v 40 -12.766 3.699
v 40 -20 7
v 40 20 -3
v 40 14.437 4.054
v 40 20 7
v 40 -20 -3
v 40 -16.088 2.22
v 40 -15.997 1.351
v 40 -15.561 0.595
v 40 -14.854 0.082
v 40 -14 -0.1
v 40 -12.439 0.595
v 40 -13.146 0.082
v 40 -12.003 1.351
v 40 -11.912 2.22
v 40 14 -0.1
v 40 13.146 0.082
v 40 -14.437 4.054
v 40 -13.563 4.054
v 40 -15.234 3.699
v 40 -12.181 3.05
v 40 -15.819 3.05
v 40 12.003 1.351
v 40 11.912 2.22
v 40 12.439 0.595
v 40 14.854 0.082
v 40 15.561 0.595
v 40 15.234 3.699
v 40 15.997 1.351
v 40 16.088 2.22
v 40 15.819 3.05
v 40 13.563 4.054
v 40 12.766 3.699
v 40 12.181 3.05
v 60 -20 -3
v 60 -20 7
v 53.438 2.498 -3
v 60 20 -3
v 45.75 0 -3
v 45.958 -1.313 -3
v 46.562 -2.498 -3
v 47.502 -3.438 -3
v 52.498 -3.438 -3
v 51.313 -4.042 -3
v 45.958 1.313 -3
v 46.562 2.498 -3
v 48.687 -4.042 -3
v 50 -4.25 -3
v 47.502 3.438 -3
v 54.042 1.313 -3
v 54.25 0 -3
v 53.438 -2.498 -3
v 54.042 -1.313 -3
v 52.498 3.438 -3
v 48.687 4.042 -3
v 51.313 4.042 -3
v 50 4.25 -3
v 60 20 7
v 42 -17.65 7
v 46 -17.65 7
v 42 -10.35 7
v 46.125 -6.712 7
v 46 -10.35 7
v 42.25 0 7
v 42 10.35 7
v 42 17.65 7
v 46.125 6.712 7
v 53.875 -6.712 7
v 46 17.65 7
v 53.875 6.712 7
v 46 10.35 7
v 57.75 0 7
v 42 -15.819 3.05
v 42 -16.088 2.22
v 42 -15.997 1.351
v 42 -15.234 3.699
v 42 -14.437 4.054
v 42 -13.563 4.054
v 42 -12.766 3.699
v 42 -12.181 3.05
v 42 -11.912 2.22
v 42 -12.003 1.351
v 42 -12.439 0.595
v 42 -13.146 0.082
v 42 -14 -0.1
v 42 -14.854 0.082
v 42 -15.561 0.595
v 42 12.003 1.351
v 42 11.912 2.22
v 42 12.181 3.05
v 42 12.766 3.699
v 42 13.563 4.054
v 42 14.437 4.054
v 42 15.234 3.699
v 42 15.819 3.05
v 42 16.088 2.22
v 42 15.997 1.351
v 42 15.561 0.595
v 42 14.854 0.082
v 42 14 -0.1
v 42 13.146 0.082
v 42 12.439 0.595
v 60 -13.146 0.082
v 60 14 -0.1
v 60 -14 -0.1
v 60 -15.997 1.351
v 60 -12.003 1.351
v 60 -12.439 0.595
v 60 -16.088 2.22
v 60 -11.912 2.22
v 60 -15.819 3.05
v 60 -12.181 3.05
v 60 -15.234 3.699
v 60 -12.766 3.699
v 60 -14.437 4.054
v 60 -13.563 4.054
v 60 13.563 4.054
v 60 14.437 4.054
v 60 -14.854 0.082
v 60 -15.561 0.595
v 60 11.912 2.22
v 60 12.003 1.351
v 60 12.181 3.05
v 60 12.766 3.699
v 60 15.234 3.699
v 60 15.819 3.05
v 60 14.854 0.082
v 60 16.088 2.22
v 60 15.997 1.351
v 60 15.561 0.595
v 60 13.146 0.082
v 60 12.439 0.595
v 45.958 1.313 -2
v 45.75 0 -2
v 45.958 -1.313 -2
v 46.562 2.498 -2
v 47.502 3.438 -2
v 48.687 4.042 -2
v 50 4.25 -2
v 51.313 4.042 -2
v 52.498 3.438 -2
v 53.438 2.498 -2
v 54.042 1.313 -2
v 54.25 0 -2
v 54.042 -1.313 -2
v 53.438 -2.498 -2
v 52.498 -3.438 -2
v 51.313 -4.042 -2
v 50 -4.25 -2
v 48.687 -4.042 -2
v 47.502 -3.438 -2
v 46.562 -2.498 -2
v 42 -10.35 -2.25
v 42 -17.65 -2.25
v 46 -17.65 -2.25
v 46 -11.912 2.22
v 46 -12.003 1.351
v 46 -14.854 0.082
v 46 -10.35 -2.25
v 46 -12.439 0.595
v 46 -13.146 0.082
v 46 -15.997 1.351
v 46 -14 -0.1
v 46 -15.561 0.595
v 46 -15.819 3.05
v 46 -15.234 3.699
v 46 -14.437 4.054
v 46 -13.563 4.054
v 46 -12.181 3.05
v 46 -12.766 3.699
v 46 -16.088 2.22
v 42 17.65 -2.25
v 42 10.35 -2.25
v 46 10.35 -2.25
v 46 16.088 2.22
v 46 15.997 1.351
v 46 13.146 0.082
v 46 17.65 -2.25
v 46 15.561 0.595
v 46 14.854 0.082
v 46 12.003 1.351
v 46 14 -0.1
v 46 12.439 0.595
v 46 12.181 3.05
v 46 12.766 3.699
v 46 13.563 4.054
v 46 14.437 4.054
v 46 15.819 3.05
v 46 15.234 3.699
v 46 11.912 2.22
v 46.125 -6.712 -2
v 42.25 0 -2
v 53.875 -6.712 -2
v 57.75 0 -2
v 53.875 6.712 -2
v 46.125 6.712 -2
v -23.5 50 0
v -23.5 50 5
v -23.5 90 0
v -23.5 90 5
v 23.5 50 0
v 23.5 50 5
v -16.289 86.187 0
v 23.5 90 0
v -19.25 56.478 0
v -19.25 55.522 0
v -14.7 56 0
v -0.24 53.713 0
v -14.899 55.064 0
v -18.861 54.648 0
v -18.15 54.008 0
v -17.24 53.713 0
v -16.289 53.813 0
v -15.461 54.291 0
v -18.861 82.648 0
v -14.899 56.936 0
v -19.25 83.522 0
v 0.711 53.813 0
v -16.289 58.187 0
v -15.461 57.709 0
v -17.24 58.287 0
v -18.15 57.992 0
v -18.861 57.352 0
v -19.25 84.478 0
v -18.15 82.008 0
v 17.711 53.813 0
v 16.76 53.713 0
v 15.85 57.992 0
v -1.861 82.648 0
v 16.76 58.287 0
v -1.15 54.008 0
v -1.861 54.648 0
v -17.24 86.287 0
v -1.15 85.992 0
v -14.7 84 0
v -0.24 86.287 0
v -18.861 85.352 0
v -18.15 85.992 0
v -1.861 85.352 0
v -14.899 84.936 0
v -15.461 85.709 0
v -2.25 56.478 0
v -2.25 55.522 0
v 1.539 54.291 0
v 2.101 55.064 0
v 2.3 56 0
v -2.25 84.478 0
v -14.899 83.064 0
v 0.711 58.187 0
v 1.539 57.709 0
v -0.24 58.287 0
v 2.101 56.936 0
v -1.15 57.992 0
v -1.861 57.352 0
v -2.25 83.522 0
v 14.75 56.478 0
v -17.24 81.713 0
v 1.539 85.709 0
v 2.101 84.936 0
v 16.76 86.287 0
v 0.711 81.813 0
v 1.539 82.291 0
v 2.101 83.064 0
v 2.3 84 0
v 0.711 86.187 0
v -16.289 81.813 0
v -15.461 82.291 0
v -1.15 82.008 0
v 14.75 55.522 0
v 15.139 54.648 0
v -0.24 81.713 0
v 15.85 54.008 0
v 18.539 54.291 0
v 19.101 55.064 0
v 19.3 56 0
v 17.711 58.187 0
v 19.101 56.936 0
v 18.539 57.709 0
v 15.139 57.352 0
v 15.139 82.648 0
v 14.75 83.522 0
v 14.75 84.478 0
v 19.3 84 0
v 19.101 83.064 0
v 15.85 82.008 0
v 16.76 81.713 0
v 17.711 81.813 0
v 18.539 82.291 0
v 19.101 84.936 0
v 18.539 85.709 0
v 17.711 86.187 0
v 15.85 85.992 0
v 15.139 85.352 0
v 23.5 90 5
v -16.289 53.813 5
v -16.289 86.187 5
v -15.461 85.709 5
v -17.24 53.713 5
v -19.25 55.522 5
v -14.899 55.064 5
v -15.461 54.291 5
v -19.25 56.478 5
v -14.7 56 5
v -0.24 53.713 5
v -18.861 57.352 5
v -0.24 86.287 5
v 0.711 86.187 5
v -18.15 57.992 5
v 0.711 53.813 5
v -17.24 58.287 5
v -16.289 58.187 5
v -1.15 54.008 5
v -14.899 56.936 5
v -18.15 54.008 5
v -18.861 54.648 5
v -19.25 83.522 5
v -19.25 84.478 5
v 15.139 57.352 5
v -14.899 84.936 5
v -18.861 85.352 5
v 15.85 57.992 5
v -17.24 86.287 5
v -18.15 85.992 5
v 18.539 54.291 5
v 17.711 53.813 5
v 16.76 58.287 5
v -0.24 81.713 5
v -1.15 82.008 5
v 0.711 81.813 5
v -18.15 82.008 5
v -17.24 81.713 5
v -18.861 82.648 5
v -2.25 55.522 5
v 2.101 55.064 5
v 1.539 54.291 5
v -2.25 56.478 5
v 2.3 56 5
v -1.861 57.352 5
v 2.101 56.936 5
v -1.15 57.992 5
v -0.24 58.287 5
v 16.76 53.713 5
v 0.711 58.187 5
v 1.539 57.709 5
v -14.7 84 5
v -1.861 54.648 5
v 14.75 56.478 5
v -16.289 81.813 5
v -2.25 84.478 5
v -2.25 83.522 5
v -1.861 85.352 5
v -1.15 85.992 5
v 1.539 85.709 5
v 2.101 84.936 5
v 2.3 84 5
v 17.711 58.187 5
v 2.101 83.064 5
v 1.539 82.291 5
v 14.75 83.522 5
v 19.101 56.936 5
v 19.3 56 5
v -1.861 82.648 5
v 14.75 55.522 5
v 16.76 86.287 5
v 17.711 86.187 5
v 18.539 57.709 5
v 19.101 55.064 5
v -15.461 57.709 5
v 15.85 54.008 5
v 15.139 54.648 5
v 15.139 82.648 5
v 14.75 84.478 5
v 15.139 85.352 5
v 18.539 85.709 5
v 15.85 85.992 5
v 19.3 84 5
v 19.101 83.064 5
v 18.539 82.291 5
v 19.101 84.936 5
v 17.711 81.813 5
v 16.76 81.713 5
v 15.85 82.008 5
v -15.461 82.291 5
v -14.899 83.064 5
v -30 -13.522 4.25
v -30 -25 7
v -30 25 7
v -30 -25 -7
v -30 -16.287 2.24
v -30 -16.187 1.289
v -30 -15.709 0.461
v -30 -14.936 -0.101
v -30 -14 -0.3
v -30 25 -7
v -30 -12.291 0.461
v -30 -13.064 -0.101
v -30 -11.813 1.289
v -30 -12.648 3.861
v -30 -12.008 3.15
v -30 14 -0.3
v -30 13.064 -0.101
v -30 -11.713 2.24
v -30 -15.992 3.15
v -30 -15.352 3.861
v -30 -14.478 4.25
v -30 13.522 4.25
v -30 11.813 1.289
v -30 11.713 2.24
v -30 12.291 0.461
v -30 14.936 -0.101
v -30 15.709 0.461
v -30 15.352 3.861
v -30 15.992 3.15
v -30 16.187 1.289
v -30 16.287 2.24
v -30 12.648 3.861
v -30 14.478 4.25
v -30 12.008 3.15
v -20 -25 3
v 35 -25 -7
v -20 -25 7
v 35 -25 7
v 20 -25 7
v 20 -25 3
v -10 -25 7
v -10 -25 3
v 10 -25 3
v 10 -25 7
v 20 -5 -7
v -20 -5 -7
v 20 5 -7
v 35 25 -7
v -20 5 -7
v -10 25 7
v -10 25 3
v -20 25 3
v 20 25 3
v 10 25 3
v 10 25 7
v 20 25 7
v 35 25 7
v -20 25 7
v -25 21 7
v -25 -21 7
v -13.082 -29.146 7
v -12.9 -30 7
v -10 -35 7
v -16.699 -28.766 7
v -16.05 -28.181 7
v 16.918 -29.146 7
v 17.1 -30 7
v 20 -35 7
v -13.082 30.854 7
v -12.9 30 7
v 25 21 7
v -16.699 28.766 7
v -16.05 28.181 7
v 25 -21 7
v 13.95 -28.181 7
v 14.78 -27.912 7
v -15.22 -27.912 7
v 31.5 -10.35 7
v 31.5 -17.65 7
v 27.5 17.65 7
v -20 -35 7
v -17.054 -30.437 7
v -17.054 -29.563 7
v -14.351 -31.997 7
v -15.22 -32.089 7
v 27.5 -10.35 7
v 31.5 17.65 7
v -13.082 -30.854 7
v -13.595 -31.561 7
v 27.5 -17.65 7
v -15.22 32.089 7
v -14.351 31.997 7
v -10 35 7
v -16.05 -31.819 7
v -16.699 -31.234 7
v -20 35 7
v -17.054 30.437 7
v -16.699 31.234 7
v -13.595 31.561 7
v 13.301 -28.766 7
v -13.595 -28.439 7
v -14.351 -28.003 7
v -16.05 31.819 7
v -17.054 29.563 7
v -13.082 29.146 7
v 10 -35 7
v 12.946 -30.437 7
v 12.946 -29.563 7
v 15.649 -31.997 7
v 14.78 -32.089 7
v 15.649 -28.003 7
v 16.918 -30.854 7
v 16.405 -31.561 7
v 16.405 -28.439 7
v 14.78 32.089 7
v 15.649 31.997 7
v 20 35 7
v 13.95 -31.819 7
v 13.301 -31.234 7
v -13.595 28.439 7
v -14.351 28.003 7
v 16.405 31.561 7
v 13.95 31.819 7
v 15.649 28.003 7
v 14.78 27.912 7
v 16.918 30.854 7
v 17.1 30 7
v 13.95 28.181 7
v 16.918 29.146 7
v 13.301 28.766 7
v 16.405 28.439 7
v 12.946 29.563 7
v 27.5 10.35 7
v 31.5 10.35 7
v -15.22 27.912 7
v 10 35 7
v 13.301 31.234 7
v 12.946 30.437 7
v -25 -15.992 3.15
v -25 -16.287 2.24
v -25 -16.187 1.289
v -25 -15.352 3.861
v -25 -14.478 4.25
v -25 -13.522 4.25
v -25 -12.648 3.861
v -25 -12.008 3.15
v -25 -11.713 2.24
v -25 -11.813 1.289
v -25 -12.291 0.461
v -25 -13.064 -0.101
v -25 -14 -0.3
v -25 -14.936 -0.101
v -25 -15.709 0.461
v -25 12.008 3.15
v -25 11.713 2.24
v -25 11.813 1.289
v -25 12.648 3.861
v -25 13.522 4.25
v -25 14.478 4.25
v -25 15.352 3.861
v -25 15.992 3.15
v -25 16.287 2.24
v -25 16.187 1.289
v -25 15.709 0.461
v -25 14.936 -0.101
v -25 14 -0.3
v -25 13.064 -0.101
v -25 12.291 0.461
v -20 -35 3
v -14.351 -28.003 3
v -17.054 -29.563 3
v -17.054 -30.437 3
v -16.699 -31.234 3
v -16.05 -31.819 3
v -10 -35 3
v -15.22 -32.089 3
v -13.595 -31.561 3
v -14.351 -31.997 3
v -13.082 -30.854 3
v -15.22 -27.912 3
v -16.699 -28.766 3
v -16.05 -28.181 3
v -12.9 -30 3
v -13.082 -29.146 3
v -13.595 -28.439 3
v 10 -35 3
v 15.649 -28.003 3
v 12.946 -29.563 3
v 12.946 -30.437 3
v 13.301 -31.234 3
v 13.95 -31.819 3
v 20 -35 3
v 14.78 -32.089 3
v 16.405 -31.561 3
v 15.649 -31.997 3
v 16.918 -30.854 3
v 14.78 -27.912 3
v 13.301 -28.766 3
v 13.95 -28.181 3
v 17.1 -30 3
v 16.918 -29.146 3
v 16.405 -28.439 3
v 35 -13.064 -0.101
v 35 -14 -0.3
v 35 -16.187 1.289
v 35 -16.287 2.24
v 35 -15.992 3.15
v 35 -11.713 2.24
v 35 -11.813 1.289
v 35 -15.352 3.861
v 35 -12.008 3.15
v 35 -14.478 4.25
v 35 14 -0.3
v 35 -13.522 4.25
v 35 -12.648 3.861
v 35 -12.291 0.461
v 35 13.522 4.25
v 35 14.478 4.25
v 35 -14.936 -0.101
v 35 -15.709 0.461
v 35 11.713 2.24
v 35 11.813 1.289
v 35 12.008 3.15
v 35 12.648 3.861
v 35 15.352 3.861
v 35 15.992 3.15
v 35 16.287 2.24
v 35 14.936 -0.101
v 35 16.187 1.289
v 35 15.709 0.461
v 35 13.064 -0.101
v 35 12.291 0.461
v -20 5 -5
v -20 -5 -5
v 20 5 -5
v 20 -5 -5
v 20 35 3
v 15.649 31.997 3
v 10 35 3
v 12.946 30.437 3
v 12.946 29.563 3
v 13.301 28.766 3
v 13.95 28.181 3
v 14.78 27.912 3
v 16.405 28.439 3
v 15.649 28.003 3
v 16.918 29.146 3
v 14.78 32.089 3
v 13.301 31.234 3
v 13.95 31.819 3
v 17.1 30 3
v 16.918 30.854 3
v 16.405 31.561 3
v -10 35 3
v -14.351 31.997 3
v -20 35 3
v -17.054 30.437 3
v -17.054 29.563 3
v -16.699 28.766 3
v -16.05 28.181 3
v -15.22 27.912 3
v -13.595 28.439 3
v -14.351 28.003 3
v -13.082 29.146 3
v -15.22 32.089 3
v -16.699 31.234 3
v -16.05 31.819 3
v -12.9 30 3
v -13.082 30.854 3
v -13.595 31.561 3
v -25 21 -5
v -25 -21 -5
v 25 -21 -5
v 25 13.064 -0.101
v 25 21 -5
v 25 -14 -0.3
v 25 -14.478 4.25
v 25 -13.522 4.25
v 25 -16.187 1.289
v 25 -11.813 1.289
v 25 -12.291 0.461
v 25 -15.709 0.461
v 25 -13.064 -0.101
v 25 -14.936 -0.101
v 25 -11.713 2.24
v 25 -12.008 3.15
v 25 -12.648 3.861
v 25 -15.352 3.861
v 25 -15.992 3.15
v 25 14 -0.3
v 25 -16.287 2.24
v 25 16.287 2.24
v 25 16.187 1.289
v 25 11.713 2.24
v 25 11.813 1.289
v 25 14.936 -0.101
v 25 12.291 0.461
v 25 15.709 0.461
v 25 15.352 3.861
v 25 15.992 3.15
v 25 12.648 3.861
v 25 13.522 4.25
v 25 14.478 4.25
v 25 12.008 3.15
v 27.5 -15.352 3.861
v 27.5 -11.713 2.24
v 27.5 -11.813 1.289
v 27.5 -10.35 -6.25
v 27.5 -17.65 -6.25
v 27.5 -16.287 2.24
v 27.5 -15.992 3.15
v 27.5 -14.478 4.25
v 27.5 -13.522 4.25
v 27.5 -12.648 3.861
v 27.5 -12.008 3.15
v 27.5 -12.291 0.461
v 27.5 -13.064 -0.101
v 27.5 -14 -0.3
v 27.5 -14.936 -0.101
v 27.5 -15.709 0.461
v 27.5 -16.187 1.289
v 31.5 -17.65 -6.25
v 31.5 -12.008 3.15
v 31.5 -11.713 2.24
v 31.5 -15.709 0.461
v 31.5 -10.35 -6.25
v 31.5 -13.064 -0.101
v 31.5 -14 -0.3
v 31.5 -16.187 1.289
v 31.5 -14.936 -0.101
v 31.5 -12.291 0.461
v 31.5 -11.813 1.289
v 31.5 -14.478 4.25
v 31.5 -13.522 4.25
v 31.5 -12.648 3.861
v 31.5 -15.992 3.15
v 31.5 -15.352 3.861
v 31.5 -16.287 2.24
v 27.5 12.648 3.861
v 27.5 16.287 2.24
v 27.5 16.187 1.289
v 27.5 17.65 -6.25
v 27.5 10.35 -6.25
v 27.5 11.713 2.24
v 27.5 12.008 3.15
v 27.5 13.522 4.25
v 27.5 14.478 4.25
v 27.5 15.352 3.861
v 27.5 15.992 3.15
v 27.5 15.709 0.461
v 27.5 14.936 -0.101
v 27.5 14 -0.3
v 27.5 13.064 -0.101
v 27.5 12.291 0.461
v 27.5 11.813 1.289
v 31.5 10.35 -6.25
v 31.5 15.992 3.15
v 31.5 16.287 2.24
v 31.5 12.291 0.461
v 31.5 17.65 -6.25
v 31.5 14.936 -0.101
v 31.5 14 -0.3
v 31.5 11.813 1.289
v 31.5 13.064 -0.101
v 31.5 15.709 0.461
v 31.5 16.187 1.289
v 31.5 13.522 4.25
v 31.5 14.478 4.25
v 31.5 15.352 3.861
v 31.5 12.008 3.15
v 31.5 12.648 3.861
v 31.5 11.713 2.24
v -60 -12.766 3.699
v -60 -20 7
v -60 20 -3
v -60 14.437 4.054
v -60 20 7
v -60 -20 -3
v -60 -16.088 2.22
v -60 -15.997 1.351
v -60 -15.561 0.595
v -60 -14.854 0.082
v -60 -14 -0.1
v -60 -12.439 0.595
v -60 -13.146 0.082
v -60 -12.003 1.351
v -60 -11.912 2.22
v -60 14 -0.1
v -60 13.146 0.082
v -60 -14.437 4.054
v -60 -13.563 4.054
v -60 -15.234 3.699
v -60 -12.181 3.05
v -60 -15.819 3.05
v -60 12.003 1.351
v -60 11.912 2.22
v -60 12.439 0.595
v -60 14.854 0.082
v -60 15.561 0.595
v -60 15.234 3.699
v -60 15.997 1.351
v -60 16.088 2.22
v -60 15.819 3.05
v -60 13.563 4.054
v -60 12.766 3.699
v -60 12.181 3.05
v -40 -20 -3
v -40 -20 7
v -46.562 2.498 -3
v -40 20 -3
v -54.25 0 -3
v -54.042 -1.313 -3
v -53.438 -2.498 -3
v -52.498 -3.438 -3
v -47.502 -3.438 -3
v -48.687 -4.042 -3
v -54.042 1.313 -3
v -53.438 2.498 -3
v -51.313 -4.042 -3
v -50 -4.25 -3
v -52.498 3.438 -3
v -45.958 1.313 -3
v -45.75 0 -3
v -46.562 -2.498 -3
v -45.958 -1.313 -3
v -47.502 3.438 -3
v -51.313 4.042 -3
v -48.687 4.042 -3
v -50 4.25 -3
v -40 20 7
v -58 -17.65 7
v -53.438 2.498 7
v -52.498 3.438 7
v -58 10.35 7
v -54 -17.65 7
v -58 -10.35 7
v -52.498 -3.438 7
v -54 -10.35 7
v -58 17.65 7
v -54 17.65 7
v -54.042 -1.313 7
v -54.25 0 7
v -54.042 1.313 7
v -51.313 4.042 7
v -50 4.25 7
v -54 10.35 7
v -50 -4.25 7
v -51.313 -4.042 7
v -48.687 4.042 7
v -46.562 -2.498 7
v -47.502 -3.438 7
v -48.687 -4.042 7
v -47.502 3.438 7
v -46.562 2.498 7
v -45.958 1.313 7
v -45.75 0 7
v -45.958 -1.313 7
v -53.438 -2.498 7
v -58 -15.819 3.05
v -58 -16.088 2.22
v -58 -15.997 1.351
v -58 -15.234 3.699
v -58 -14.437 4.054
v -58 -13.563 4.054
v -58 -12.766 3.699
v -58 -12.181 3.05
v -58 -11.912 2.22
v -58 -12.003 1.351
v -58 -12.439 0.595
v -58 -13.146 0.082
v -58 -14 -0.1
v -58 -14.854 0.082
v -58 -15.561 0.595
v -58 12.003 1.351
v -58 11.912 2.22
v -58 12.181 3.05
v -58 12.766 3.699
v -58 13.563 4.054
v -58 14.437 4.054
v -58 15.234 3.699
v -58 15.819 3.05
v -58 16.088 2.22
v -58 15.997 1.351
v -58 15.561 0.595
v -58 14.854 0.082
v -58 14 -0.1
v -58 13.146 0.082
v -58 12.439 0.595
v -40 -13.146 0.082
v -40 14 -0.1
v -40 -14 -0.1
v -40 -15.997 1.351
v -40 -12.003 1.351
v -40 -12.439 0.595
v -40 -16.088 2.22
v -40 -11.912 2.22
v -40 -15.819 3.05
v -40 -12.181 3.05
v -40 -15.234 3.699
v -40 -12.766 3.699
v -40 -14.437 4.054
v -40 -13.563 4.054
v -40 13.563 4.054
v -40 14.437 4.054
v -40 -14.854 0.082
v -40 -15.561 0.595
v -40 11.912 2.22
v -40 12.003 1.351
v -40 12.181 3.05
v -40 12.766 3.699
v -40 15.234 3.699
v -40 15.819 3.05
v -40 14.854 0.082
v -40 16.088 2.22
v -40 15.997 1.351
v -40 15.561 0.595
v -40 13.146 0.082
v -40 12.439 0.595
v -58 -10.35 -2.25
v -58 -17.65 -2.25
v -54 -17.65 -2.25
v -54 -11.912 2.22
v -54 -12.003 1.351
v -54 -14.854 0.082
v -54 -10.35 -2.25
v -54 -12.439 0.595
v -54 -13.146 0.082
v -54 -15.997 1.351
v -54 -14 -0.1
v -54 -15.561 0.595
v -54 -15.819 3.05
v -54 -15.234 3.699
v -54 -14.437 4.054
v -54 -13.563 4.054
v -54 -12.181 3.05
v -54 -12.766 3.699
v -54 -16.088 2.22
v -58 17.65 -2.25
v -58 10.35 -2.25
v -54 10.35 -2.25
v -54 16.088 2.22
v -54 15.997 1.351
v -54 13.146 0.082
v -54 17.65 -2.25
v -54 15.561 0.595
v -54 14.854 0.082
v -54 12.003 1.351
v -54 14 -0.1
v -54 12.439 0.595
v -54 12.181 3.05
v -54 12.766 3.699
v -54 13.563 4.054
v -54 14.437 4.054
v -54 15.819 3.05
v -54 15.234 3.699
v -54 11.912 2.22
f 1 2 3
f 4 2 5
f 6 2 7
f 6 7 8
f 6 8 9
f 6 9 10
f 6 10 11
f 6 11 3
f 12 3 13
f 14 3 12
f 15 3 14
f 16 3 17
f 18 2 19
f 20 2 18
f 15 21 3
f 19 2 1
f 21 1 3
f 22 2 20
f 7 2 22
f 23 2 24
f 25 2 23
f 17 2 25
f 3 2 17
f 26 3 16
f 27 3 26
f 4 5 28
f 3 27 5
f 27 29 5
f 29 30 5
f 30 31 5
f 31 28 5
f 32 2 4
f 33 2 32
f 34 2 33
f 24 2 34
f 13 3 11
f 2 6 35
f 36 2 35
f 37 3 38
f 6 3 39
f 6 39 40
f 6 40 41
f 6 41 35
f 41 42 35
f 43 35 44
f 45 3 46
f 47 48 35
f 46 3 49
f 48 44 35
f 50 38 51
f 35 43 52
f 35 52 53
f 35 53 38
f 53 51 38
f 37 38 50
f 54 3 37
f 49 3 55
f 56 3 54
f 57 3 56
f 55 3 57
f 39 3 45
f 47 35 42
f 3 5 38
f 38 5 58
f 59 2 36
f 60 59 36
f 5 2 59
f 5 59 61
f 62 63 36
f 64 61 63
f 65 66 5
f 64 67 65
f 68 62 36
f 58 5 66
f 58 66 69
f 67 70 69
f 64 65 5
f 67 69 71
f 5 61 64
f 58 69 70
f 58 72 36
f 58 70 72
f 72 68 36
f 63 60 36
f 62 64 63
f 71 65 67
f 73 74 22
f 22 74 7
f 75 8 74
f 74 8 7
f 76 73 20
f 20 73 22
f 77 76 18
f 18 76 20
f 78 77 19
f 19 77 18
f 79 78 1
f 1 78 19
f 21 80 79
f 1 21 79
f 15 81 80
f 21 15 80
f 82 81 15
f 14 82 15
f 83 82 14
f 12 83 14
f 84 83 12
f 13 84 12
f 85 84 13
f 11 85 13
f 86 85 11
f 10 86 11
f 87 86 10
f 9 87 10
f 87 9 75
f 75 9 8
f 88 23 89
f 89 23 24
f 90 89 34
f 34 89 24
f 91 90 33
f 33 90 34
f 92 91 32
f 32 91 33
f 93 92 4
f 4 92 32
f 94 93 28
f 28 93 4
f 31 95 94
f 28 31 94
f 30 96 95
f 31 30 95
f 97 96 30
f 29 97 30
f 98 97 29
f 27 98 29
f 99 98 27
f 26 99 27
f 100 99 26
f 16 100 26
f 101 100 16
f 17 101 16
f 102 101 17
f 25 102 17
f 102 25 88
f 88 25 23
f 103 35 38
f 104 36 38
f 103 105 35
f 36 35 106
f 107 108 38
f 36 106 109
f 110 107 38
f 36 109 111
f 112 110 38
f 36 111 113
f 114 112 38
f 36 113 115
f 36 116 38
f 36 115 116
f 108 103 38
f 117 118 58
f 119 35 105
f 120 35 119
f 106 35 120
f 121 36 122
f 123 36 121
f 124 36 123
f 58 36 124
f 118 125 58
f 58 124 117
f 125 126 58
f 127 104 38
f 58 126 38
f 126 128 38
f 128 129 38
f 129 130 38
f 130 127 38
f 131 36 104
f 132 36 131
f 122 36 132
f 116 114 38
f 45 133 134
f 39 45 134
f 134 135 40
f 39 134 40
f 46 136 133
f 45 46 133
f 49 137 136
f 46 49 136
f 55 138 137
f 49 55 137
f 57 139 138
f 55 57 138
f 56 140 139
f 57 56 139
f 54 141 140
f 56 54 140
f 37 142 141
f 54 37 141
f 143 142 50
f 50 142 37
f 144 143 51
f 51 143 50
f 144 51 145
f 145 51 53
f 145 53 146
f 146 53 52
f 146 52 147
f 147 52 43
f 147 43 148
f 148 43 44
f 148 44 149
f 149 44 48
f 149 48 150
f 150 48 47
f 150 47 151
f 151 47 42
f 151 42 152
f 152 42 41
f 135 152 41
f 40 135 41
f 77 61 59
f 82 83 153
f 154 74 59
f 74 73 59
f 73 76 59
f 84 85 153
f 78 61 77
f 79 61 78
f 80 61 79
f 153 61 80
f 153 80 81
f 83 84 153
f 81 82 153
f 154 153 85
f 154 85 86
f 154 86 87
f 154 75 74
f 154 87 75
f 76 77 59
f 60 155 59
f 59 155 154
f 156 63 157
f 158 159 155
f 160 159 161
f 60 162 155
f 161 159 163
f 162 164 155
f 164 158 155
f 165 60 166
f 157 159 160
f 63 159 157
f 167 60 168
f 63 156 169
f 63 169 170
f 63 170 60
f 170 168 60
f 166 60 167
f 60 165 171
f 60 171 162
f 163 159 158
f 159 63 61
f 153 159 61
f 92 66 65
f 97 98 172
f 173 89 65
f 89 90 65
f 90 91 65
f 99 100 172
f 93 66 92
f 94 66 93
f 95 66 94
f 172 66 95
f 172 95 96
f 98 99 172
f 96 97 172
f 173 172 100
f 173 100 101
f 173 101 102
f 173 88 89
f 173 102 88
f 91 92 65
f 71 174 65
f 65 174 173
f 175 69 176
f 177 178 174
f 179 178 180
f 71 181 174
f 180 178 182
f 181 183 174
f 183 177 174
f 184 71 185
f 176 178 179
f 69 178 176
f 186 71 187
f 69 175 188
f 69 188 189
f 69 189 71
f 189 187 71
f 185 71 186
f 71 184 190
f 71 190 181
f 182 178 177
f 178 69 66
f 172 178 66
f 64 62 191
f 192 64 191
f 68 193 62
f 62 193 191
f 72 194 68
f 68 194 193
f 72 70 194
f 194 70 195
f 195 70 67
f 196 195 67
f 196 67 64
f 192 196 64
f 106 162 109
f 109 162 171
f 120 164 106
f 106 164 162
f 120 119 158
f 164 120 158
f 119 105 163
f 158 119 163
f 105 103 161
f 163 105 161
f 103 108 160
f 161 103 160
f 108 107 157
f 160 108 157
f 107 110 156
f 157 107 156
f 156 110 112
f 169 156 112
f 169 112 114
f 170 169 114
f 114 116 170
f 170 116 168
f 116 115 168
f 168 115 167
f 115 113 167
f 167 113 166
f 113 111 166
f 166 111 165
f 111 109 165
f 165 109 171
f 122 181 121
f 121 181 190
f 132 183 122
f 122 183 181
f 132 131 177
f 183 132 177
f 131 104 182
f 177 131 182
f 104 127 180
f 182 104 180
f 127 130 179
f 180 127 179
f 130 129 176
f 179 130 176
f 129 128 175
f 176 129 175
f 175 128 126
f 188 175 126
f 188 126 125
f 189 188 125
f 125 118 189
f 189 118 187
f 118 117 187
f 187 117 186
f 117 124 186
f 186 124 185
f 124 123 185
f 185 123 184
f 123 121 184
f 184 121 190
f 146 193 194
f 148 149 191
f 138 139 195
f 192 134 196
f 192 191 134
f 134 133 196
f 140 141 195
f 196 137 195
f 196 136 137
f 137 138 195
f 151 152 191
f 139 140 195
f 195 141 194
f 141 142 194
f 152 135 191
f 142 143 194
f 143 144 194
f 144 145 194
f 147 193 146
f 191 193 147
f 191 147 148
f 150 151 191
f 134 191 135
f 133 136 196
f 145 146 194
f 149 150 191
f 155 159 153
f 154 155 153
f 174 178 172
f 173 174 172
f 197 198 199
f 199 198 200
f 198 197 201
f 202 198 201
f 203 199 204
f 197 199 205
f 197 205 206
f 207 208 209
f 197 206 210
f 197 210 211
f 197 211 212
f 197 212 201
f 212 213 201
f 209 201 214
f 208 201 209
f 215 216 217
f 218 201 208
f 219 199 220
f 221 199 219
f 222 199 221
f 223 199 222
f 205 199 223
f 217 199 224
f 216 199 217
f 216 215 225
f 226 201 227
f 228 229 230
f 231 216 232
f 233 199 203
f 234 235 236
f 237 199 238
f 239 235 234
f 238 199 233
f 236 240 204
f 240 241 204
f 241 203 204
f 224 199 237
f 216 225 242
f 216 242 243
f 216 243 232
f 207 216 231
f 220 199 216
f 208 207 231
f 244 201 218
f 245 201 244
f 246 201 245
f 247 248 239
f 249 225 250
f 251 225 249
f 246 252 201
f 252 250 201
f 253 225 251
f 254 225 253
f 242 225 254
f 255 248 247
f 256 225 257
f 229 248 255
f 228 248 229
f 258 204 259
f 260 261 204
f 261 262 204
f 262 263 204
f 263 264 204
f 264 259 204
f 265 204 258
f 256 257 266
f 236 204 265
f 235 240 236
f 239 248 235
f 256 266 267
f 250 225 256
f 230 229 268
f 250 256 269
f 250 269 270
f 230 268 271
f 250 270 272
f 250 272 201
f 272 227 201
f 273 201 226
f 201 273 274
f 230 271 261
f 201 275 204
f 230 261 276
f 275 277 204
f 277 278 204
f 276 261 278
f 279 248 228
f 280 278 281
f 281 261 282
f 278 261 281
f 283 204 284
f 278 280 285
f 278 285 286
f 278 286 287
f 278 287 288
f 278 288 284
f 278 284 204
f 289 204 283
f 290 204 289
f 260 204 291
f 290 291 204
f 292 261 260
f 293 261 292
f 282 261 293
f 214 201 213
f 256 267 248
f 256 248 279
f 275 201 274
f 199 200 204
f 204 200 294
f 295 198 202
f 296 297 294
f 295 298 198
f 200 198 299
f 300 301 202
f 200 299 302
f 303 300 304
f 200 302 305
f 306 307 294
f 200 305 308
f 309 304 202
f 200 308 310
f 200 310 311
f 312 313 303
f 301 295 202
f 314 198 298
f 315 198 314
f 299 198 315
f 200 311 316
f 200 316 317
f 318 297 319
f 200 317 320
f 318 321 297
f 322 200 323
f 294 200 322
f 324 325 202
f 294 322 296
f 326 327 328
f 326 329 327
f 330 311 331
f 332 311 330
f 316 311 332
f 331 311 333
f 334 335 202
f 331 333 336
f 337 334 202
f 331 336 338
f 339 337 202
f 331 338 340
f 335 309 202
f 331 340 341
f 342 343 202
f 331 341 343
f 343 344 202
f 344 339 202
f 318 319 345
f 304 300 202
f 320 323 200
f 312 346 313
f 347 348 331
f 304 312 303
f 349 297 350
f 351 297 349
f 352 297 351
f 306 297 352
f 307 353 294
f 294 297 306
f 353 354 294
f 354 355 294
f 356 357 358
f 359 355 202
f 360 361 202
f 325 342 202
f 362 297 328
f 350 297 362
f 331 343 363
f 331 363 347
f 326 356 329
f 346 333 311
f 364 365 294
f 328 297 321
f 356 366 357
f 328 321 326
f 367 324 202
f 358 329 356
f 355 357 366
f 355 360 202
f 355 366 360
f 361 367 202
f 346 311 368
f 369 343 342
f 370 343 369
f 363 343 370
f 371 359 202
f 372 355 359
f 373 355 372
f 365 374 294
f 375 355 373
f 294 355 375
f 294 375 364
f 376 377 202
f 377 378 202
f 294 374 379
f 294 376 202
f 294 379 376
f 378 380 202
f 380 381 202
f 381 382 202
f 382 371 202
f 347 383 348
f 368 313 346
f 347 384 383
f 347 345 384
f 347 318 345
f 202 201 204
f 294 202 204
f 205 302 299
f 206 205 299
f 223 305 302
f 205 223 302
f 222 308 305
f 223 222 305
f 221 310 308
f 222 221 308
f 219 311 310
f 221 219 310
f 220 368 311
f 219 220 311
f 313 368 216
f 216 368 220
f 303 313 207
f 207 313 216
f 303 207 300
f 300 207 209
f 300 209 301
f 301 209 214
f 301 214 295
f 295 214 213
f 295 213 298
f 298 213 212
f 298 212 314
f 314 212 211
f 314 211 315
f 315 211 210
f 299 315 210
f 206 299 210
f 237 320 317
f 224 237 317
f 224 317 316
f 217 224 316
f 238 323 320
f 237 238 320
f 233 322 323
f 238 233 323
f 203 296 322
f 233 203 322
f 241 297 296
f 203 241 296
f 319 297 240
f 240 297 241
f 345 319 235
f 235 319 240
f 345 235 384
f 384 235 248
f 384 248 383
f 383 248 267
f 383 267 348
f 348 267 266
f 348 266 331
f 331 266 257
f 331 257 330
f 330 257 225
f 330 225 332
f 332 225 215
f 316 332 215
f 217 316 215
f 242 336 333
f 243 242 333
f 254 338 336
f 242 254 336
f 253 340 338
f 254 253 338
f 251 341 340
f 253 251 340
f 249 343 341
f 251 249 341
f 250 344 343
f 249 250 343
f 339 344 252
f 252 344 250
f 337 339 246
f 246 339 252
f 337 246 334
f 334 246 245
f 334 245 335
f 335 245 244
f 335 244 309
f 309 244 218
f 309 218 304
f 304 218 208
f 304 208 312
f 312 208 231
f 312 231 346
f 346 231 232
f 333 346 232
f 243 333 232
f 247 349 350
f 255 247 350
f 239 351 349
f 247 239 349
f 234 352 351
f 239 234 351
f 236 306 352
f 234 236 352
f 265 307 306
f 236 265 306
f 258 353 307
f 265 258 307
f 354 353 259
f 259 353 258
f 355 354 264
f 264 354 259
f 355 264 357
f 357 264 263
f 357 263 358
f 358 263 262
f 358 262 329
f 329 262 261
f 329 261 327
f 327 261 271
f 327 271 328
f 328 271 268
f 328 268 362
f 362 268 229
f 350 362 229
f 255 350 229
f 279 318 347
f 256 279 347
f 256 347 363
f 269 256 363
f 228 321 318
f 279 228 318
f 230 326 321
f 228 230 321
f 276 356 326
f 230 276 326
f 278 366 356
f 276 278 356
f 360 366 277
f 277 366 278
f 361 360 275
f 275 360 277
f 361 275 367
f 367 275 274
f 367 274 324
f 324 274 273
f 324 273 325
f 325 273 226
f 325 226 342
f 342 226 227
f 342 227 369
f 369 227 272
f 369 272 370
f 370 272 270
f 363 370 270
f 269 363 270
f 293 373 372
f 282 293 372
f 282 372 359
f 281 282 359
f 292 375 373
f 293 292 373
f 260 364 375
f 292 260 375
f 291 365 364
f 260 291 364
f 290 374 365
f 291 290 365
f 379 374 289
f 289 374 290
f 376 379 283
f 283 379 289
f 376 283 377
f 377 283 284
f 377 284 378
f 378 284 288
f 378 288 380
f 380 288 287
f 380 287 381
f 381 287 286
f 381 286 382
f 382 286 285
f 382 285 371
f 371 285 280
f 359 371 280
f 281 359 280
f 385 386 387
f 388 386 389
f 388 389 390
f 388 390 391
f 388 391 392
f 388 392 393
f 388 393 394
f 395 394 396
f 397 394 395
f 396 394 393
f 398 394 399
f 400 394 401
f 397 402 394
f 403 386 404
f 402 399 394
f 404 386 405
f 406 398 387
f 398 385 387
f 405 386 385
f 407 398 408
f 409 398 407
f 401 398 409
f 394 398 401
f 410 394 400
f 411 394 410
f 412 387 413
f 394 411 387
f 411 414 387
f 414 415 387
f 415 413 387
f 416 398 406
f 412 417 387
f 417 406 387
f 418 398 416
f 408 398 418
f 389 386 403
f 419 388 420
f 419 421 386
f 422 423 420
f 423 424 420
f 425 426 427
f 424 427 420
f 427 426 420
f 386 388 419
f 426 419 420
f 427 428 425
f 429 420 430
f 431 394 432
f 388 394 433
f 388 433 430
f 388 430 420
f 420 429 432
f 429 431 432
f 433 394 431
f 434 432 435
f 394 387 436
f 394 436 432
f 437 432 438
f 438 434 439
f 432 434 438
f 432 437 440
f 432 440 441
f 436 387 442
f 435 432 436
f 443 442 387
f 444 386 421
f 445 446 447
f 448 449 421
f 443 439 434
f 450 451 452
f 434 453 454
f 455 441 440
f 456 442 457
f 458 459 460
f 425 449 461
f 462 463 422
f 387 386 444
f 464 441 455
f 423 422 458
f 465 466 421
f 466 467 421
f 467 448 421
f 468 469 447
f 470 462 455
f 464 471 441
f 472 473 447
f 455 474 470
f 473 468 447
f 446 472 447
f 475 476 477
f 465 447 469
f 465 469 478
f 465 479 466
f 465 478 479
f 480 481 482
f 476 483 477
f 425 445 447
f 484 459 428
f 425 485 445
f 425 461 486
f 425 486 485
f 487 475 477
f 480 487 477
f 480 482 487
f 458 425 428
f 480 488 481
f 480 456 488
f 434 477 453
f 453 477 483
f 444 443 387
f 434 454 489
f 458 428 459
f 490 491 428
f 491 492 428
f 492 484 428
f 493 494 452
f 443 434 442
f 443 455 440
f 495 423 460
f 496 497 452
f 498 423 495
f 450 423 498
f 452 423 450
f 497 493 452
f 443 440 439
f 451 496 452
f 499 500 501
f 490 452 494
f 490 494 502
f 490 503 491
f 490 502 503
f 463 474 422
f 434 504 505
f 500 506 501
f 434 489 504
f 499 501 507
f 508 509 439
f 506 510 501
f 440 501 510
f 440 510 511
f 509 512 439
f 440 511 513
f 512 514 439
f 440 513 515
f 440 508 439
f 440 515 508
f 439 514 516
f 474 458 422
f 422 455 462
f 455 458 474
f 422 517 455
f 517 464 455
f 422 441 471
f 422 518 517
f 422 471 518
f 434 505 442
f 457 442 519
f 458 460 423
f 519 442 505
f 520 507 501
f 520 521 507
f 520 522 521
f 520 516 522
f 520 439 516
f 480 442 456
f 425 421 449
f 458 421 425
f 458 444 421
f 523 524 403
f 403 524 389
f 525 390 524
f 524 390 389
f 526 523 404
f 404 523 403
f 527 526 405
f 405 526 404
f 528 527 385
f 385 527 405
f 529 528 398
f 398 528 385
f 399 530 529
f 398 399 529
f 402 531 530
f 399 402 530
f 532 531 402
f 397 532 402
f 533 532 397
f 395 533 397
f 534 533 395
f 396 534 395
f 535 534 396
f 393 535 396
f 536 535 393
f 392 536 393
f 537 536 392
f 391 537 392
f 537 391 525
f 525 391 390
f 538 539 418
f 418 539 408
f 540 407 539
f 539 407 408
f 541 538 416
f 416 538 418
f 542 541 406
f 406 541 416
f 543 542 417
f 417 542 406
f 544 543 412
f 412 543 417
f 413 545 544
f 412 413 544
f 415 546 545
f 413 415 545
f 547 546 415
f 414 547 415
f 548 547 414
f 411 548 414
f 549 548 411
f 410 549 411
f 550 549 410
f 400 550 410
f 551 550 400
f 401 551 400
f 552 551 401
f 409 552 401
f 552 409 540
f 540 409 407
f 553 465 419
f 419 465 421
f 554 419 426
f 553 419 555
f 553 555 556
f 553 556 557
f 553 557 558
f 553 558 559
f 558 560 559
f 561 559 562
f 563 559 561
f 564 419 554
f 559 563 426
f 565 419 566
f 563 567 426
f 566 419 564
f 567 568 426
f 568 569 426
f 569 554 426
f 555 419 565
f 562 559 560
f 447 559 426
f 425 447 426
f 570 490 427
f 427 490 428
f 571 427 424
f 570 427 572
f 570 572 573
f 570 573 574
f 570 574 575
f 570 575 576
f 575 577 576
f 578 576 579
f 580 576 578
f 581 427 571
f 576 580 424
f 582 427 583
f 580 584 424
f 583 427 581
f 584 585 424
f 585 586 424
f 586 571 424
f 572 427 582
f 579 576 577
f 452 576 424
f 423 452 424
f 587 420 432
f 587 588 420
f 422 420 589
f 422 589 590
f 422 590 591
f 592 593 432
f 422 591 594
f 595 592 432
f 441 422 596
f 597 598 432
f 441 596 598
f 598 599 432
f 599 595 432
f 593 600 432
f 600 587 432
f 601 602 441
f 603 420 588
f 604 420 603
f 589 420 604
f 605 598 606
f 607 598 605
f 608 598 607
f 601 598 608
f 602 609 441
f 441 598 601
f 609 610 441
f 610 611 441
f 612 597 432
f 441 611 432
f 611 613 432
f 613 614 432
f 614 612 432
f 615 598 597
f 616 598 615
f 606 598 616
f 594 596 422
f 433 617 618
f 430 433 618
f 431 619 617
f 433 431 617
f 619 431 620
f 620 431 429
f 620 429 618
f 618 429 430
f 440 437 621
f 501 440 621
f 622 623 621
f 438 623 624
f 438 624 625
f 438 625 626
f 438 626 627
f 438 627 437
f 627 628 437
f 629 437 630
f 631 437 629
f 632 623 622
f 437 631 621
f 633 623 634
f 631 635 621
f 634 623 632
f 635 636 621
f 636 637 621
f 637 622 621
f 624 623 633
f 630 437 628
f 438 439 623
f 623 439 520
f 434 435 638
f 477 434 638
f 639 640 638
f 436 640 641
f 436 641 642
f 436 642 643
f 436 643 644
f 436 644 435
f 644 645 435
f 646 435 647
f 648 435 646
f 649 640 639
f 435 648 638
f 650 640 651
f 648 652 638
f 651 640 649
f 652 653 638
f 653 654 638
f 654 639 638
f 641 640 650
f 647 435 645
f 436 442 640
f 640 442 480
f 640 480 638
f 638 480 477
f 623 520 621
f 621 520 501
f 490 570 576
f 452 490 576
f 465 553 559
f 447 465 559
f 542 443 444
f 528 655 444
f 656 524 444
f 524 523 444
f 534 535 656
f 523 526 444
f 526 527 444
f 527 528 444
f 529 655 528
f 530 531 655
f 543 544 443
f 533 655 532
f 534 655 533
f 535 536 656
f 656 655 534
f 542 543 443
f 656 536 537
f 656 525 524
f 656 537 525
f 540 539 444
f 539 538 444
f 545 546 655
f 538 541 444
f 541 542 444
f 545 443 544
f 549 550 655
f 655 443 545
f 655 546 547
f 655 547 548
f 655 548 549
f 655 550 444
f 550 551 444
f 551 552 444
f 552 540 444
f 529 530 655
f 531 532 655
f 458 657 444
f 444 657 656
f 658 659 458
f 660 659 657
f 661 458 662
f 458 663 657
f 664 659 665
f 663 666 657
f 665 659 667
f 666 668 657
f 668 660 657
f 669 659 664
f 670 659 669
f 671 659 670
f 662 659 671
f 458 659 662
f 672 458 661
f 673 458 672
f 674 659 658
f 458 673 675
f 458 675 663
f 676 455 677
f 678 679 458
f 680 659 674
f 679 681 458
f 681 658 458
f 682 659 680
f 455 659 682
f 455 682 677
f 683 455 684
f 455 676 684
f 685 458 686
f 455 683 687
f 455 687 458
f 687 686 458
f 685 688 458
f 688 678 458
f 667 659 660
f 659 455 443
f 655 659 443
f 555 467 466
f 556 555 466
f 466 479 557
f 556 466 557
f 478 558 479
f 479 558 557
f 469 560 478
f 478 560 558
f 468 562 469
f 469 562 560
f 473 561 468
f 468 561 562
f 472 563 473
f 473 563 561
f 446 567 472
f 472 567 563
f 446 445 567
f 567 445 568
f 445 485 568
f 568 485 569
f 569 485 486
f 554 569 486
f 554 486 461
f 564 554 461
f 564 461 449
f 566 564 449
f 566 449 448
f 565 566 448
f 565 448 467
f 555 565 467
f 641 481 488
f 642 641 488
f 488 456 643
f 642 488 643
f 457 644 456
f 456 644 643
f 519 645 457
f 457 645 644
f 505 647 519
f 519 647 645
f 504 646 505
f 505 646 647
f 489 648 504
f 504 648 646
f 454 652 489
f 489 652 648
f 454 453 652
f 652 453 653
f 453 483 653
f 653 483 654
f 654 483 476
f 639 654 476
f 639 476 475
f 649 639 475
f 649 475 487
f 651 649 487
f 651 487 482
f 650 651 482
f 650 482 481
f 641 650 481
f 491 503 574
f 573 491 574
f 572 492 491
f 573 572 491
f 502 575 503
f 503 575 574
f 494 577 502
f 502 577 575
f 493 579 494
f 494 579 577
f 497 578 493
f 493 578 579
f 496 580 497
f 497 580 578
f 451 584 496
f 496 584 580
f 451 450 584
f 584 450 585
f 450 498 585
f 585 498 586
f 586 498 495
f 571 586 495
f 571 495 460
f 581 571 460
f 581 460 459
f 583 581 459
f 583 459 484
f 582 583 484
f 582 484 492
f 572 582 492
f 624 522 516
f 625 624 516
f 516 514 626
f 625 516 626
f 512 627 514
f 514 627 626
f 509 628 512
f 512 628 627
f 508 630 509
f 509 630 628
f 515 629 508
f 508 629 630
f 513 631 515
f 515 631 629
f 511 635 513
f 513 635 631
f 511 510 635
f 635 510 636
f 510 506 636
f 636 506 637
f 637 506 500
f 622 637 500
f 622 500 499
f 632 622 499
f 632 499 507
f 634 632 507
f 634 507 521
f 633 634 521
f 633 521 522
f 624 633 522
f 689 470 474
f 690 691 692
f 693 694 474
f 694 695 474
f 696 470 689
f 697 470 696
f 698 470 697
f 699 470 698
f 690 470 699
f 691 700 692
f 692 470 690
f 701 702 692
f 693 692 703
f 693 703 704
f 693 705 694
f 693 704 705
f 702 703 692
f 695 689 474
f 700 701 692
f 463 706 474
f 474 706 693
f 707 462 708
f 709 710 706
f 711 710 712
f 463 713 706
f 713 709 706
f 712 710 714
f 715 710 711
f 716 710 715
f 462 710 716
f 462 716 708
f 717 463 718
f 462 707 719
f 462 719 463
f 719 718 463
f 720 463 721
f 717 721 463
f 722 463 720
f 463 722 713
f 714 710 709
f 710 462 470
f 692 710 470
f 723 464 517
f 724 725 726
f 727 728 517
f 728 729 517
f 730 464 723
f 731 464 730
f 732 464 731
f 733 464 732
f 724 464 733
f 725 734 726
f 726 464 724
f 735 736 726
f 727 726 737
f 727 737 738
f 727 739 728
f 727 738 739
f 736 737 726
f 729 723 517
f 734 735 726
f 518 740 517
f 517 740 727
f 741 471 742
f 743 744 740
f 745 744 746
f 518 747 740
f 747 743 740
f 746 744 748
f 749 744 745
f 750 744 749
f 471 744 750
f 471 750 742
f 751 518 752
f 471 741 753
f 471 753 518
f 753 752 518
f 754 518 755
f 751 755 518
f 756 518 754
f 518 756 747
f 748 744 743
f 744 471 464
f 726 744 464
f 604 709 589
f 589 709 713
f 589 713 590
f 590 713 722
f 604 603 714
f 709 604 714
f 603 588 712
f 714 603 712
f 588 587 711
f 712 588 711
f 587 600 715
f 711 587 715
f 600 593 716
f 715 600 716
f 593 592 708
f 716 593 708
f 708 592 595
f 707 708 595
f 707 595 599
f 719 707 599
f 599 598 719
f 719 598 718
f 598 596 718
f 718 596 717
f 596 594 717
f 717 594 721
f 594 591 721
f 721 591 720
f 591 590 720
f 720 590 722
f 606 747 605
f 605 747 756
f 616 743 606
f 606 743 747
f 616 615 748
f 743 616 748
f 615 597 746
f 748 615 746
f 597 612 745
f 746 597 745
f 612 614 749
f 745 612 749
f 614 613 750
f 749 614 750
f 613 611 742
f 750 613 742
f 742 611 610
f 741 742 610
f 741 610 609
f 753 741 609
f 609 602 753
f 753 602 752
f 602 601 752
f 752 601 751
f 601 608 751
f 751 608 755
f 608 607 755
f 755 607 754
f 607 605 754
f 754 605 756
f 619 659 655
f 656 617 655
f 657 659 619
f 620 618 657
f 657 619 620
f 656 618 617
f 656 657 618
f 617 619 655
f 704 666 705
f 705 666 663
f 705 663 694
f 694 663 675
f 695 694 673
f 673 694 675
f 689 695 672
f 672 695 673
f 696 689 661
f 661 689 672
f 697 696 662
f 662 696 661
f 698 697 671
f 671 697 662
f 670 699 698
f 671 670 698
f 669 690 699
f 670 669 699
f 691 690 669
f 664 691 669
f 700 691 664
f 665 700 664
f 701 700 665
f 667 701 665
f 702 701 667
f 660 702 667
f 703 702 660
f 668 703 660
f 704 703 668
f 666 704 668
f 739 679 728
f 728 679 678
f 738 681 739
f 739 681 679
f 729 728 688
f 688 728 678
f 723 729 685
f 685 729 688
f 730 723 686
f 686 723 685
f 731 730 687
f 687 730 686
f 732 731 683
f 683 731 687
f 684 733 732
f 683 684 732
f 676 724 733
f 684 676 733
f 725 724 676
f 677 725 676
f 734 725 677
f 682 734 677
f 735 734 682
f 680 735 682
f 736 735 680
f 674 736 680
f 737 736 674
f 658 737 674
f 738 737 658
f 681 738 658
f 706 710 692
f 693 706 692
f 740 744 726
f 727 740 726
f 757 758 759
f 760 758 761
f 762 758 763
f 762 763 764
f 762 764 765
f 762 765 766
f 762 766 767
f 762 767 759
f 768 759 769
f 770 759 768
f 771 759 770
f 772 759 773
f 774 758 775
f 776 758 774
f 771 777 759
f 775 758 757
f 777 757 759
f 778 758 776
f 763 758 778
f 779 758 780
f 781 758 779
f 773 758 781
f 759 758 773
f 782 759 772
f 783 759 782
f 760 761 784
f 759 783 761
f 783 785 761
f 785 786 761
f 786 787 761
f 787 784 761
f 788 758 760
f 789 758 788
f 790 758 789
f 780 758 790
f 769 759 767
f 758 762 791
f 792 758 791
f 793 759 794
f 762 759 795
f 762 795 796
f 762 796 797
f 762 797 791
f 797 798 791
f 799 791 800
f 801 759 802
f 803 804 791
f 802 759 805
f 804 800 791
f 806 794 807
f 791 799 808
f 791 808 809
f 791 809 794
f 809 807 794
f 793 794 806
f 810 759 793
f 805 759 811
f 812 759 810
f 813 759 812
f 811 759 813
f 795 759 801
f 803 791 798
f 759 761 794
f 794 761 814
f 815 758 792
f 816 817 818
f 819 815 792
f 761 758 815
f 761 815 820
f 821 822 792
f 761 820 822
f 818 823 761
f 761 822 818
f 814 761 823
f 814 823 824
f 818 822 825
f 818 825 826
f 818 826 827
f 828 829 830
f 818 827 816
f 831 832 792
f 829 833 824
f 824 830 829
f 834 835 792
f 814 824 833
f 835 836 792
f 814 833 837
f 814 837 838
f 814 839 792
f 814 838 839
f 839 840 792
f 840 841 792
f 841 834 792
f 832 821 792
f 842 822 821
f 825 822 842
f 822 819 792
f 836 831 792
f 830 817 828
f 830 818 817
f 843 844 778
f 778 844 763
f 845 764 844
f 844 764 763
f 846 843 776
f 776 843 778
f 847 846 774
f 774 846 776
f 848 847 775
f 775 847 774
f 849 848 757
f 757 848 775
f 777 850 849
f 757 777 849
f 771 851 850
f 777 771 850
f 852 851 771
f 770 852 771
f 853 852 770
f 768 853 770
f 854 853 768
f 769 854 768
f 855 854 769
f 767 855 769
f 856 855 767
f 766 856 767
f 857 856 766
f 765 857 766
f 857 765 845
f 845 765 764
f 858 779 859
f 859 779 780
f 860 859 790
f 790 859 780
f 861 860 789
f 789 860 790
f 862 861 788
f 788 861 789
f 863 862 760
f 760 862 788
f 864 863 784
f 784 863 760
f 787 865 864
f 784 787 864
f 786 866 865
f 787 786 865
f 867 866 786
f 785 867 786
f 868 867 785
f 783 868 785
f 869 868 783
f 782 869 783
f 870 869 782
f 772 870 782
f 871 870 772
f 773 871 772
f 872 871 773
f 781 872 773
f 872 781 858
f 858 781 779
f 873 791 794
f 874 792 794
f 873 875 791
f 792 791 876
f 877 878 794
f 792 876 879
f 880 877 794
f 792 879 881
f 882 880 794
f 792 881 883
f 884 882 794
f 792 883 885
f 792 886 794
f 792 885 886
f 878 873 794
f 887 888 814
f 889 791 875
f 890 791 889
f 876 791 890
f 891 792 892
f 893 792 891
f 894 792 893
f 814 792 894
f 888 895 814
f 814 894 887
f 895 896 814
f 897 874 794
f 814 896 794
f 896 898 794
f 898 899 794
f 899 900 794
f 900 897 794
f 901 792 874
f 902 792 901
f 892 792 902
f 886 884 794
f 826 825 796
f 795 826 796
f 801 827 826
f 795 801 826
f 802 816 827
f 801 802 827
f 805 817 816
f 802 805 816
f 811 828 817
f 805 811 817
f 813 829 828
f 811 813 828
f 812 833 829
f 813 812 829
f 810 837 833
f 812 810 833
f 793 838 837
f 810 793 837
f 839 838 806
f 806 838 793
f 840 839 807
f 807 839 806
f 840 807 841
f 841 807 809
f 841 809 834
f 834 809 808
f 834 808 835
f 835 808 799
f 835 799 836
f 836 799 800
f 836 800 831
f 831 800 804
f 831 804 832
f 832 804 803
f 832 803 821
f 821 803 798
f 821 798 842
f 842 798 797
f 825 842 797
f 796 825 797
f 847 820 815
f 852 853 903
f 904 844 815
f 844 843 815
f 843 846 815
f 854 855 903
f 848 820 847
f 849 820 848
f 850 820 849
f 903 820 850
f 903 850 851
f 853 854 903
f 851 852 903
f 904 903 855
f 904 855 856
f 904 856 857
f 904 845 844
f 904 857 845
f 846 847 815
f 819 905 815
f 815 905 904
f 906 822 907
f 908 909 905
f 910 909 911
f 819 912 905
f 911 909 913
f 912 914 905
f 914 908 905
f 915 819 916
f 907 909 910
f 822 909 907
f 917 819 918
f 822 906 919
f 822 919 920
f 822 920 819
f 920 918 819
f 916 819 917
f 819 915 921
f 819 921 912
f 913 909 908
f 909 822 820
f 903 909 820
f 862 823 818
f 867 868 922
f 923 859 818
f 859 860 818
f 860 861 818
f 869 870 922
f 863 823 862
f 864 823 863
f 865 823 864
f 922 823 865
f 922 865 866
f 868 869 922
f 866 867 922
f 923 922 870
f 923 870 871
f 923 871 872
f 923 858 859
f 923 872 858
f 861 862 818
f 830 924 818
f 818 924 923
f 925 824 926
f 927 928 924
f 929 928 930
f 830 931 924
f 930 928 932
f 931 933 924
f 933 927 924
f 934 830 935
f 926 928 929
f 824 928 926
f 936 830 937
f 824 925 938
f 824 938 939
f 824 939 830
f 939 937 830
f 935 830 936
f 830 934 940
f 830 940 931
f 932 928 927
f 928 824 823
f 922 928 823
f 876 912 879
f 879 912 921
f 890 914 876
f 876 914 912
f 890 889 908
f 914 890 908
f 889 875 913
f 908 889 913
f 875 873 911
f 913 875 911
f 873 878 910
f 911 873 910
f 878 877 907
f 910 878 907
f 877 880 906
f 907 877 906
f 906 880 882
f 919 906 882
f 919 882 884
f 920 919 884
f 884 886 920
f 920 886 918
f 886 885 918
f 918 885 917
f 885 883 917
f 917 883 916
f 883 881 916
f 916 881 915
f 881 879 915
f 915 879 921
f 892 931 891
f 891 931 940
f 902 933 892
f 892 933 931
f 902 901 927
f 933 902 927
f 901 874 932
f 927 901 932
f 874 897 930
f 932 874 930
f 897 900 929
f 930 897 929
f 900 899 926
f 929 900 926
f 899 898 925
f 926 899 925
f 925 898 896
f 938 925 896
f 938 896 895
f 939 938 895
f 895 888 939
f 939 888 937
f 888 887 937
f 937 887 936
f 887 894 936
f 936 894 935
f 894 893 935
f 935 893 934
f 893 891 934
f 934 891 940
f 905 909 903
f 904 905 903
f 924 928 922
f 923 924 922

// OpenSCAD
ancho_pared=7;

module tensor(){
	difference(){

		cube([20,40,10],center=true);
		
		translate([0,0,-4])
		cylinder(r=15.5/2,h=100, $fn=6);

		cylinder(r=8.5/2,h=100, center=true, $fn=20);


		translate([20,0,0]) rotate([0,0,0])
		cube([20,40,40],center=true);

		translate([0,14,0]) rotate([0,90,0])
		cylinder(r=4.2/2,h=100,center=true , $fn=15);

		translate([0,-14,0]) rotate([0,90,0])
		cylinder(r=4.2/2,h=100,center=true , $fn=15);

		translate([-6,-14,0.75]) rotate([0,0,0])
		cube([4,7.30,10],center=true);

		translate([-6,14,0.75]) rotate([0,0,0])
		cube([4,7.30,10],center=true);
	}
}
module placa(){
	difference(){	
		cube([ancho_pared+20+20,40,5],center=true);
		
		translate([ancho_pared+20/2,14,0]) rotate([0,0,0])
		cylinder(r=4.6/2,h=100,center=true , $fn=15);

		translate([0,14,0]) rotate([0,0,0])
		cylinder(r=4.6/2,h=100,center=true , $fn=15);

		translate([ancho_pared+20/2,-14,0]) rotate([0,0,0])
		cylinder(r=4.6/2,h=100,center=true , $fn=15);

		translate([0,-14,0]) rotate([0,0,0])
		cylinder(r=4.6/2,h=100,center=true , $fn=15);
		
		translate([-ancho_pared-20/2,14,0]) rotate([0,0,0])
		cylinder(r=4.6/2,h=100,center=true , $fn=15);

		translate([-ancho_pared-20/2,-14,0]) rotate([0,0,0])
		cylinder(r=4.6/2,h=100,center=true , $fn=15);
	

	}
}

module cubre_tensor(){
	difference(){
		
		//CUERPO CENTRAL
		union(){
			cube([60,50,14],center=true);
			
			translate([30/2,60/2,5]) rotate([0,0,0])
			//cylinder(r=10/2,h=14,center=true , $fn=15);
			cube([10,10,4],center=true);
			
			translate([-30/2,60/2,5]) rotate([0,0,0])
			cube([10,10,4],center=true);

			translate([-30/2,-60/2,5]) rotate([0,0,0])
			cube([10,10,4],center=true);

			translate([30/2,-60/2,5]) rotate([0,0,0])
			cube([10,10,4],center=true);
			

			translate([60/2,0,0]) rotate([0,0,0])
			cube([10,50,14],center=true);
			
		}
		//VACIADO CUERPO CENTRAL
		translate([0,0,3]) rotate([0,0,0])
		cube([50,42,16],center=true);
		
		
		//AGUJERO TENSOR
		translate([0,14,2]) rotate([0,90,0])
		cylinder(r=4.6/2,h=100,center=true , $fn=15);

		
		//AGUJERO TENSOR
		translate([0,-14,2]) rotate([0,90,0])
		cylinder(r=4.6/2,h=100,center=true , $fn=15);
	
		//AGUJERO INFERIOR EJE

		cube ([40,10,100], center=true);

		//alojmaiento tuerca

		translate([59/2,14,0.75]) rotate([0,0,0])
		cube([4,7.30,14],center=true);
		
		translate([59/2,-14,0.75]) rotate([0,0,0])
		cube([4,7.30,14],center=true);

		//agujero montaje
		translate([30/2,60/2,0]) rotate([0,0,0])
		cylinder(r=4.2/2,h=100,center=true , $fn=15);
		
		translate([-30/2,60/2,0]) rotate([0,0,0])
		cylinder(r=4.2/2,h=100,center=true , $fn=15);

		translate([30/2,-60/2,0]) rotate([0,0,0])
		cylinder(r=4.2/2,h=100,center=true , $fn=15);

		translate([-30/2,-60/2,0]) rotate([0,0,0])
		cylinder(r=4.2/2,h=100,center=true , $fn=15);
		
	}
}

module tensor_liso(){
	difference(){

		cube([20,40,10],center=true);
		
		translate([0,0,-4])
		//cylinder(r=15.5/2,h=100, $fn=6);

		cylinder(r=8.5/2,h=100, center=true, $fn=20);


		translate([20,0,0]) rotate([0,0,0])
		cube([20,40,40],center=true);

		translate([0,14,0]) rotate([0,90,0])
		cylinder(r=4.2/2,h=100,center=true , $fn=15);

		translate([0,-14,0]) rotate([0,90,0])
		cylinder(r=4.2/2,h=100,center=true , $fn=15);

		translate([-6,-14,0.75]) rotate([0,0,0])
		cube([4,7.30,10],center=true);

		translate([-6,14,0.75]) rotate([0,0,0])
		cube([4,7.30,10],center=true);
	}
}


translate([50,0,2]) rotate([0,0,0])
tensor();

translate([0,70,2.5]) rotate([0,0,0])
placa();

translate([0,0,0]) rotate([0,0,0])
cubre_tensor();

translate([-50,0,2]) rotate([0,0,0])
tensor_liso();
